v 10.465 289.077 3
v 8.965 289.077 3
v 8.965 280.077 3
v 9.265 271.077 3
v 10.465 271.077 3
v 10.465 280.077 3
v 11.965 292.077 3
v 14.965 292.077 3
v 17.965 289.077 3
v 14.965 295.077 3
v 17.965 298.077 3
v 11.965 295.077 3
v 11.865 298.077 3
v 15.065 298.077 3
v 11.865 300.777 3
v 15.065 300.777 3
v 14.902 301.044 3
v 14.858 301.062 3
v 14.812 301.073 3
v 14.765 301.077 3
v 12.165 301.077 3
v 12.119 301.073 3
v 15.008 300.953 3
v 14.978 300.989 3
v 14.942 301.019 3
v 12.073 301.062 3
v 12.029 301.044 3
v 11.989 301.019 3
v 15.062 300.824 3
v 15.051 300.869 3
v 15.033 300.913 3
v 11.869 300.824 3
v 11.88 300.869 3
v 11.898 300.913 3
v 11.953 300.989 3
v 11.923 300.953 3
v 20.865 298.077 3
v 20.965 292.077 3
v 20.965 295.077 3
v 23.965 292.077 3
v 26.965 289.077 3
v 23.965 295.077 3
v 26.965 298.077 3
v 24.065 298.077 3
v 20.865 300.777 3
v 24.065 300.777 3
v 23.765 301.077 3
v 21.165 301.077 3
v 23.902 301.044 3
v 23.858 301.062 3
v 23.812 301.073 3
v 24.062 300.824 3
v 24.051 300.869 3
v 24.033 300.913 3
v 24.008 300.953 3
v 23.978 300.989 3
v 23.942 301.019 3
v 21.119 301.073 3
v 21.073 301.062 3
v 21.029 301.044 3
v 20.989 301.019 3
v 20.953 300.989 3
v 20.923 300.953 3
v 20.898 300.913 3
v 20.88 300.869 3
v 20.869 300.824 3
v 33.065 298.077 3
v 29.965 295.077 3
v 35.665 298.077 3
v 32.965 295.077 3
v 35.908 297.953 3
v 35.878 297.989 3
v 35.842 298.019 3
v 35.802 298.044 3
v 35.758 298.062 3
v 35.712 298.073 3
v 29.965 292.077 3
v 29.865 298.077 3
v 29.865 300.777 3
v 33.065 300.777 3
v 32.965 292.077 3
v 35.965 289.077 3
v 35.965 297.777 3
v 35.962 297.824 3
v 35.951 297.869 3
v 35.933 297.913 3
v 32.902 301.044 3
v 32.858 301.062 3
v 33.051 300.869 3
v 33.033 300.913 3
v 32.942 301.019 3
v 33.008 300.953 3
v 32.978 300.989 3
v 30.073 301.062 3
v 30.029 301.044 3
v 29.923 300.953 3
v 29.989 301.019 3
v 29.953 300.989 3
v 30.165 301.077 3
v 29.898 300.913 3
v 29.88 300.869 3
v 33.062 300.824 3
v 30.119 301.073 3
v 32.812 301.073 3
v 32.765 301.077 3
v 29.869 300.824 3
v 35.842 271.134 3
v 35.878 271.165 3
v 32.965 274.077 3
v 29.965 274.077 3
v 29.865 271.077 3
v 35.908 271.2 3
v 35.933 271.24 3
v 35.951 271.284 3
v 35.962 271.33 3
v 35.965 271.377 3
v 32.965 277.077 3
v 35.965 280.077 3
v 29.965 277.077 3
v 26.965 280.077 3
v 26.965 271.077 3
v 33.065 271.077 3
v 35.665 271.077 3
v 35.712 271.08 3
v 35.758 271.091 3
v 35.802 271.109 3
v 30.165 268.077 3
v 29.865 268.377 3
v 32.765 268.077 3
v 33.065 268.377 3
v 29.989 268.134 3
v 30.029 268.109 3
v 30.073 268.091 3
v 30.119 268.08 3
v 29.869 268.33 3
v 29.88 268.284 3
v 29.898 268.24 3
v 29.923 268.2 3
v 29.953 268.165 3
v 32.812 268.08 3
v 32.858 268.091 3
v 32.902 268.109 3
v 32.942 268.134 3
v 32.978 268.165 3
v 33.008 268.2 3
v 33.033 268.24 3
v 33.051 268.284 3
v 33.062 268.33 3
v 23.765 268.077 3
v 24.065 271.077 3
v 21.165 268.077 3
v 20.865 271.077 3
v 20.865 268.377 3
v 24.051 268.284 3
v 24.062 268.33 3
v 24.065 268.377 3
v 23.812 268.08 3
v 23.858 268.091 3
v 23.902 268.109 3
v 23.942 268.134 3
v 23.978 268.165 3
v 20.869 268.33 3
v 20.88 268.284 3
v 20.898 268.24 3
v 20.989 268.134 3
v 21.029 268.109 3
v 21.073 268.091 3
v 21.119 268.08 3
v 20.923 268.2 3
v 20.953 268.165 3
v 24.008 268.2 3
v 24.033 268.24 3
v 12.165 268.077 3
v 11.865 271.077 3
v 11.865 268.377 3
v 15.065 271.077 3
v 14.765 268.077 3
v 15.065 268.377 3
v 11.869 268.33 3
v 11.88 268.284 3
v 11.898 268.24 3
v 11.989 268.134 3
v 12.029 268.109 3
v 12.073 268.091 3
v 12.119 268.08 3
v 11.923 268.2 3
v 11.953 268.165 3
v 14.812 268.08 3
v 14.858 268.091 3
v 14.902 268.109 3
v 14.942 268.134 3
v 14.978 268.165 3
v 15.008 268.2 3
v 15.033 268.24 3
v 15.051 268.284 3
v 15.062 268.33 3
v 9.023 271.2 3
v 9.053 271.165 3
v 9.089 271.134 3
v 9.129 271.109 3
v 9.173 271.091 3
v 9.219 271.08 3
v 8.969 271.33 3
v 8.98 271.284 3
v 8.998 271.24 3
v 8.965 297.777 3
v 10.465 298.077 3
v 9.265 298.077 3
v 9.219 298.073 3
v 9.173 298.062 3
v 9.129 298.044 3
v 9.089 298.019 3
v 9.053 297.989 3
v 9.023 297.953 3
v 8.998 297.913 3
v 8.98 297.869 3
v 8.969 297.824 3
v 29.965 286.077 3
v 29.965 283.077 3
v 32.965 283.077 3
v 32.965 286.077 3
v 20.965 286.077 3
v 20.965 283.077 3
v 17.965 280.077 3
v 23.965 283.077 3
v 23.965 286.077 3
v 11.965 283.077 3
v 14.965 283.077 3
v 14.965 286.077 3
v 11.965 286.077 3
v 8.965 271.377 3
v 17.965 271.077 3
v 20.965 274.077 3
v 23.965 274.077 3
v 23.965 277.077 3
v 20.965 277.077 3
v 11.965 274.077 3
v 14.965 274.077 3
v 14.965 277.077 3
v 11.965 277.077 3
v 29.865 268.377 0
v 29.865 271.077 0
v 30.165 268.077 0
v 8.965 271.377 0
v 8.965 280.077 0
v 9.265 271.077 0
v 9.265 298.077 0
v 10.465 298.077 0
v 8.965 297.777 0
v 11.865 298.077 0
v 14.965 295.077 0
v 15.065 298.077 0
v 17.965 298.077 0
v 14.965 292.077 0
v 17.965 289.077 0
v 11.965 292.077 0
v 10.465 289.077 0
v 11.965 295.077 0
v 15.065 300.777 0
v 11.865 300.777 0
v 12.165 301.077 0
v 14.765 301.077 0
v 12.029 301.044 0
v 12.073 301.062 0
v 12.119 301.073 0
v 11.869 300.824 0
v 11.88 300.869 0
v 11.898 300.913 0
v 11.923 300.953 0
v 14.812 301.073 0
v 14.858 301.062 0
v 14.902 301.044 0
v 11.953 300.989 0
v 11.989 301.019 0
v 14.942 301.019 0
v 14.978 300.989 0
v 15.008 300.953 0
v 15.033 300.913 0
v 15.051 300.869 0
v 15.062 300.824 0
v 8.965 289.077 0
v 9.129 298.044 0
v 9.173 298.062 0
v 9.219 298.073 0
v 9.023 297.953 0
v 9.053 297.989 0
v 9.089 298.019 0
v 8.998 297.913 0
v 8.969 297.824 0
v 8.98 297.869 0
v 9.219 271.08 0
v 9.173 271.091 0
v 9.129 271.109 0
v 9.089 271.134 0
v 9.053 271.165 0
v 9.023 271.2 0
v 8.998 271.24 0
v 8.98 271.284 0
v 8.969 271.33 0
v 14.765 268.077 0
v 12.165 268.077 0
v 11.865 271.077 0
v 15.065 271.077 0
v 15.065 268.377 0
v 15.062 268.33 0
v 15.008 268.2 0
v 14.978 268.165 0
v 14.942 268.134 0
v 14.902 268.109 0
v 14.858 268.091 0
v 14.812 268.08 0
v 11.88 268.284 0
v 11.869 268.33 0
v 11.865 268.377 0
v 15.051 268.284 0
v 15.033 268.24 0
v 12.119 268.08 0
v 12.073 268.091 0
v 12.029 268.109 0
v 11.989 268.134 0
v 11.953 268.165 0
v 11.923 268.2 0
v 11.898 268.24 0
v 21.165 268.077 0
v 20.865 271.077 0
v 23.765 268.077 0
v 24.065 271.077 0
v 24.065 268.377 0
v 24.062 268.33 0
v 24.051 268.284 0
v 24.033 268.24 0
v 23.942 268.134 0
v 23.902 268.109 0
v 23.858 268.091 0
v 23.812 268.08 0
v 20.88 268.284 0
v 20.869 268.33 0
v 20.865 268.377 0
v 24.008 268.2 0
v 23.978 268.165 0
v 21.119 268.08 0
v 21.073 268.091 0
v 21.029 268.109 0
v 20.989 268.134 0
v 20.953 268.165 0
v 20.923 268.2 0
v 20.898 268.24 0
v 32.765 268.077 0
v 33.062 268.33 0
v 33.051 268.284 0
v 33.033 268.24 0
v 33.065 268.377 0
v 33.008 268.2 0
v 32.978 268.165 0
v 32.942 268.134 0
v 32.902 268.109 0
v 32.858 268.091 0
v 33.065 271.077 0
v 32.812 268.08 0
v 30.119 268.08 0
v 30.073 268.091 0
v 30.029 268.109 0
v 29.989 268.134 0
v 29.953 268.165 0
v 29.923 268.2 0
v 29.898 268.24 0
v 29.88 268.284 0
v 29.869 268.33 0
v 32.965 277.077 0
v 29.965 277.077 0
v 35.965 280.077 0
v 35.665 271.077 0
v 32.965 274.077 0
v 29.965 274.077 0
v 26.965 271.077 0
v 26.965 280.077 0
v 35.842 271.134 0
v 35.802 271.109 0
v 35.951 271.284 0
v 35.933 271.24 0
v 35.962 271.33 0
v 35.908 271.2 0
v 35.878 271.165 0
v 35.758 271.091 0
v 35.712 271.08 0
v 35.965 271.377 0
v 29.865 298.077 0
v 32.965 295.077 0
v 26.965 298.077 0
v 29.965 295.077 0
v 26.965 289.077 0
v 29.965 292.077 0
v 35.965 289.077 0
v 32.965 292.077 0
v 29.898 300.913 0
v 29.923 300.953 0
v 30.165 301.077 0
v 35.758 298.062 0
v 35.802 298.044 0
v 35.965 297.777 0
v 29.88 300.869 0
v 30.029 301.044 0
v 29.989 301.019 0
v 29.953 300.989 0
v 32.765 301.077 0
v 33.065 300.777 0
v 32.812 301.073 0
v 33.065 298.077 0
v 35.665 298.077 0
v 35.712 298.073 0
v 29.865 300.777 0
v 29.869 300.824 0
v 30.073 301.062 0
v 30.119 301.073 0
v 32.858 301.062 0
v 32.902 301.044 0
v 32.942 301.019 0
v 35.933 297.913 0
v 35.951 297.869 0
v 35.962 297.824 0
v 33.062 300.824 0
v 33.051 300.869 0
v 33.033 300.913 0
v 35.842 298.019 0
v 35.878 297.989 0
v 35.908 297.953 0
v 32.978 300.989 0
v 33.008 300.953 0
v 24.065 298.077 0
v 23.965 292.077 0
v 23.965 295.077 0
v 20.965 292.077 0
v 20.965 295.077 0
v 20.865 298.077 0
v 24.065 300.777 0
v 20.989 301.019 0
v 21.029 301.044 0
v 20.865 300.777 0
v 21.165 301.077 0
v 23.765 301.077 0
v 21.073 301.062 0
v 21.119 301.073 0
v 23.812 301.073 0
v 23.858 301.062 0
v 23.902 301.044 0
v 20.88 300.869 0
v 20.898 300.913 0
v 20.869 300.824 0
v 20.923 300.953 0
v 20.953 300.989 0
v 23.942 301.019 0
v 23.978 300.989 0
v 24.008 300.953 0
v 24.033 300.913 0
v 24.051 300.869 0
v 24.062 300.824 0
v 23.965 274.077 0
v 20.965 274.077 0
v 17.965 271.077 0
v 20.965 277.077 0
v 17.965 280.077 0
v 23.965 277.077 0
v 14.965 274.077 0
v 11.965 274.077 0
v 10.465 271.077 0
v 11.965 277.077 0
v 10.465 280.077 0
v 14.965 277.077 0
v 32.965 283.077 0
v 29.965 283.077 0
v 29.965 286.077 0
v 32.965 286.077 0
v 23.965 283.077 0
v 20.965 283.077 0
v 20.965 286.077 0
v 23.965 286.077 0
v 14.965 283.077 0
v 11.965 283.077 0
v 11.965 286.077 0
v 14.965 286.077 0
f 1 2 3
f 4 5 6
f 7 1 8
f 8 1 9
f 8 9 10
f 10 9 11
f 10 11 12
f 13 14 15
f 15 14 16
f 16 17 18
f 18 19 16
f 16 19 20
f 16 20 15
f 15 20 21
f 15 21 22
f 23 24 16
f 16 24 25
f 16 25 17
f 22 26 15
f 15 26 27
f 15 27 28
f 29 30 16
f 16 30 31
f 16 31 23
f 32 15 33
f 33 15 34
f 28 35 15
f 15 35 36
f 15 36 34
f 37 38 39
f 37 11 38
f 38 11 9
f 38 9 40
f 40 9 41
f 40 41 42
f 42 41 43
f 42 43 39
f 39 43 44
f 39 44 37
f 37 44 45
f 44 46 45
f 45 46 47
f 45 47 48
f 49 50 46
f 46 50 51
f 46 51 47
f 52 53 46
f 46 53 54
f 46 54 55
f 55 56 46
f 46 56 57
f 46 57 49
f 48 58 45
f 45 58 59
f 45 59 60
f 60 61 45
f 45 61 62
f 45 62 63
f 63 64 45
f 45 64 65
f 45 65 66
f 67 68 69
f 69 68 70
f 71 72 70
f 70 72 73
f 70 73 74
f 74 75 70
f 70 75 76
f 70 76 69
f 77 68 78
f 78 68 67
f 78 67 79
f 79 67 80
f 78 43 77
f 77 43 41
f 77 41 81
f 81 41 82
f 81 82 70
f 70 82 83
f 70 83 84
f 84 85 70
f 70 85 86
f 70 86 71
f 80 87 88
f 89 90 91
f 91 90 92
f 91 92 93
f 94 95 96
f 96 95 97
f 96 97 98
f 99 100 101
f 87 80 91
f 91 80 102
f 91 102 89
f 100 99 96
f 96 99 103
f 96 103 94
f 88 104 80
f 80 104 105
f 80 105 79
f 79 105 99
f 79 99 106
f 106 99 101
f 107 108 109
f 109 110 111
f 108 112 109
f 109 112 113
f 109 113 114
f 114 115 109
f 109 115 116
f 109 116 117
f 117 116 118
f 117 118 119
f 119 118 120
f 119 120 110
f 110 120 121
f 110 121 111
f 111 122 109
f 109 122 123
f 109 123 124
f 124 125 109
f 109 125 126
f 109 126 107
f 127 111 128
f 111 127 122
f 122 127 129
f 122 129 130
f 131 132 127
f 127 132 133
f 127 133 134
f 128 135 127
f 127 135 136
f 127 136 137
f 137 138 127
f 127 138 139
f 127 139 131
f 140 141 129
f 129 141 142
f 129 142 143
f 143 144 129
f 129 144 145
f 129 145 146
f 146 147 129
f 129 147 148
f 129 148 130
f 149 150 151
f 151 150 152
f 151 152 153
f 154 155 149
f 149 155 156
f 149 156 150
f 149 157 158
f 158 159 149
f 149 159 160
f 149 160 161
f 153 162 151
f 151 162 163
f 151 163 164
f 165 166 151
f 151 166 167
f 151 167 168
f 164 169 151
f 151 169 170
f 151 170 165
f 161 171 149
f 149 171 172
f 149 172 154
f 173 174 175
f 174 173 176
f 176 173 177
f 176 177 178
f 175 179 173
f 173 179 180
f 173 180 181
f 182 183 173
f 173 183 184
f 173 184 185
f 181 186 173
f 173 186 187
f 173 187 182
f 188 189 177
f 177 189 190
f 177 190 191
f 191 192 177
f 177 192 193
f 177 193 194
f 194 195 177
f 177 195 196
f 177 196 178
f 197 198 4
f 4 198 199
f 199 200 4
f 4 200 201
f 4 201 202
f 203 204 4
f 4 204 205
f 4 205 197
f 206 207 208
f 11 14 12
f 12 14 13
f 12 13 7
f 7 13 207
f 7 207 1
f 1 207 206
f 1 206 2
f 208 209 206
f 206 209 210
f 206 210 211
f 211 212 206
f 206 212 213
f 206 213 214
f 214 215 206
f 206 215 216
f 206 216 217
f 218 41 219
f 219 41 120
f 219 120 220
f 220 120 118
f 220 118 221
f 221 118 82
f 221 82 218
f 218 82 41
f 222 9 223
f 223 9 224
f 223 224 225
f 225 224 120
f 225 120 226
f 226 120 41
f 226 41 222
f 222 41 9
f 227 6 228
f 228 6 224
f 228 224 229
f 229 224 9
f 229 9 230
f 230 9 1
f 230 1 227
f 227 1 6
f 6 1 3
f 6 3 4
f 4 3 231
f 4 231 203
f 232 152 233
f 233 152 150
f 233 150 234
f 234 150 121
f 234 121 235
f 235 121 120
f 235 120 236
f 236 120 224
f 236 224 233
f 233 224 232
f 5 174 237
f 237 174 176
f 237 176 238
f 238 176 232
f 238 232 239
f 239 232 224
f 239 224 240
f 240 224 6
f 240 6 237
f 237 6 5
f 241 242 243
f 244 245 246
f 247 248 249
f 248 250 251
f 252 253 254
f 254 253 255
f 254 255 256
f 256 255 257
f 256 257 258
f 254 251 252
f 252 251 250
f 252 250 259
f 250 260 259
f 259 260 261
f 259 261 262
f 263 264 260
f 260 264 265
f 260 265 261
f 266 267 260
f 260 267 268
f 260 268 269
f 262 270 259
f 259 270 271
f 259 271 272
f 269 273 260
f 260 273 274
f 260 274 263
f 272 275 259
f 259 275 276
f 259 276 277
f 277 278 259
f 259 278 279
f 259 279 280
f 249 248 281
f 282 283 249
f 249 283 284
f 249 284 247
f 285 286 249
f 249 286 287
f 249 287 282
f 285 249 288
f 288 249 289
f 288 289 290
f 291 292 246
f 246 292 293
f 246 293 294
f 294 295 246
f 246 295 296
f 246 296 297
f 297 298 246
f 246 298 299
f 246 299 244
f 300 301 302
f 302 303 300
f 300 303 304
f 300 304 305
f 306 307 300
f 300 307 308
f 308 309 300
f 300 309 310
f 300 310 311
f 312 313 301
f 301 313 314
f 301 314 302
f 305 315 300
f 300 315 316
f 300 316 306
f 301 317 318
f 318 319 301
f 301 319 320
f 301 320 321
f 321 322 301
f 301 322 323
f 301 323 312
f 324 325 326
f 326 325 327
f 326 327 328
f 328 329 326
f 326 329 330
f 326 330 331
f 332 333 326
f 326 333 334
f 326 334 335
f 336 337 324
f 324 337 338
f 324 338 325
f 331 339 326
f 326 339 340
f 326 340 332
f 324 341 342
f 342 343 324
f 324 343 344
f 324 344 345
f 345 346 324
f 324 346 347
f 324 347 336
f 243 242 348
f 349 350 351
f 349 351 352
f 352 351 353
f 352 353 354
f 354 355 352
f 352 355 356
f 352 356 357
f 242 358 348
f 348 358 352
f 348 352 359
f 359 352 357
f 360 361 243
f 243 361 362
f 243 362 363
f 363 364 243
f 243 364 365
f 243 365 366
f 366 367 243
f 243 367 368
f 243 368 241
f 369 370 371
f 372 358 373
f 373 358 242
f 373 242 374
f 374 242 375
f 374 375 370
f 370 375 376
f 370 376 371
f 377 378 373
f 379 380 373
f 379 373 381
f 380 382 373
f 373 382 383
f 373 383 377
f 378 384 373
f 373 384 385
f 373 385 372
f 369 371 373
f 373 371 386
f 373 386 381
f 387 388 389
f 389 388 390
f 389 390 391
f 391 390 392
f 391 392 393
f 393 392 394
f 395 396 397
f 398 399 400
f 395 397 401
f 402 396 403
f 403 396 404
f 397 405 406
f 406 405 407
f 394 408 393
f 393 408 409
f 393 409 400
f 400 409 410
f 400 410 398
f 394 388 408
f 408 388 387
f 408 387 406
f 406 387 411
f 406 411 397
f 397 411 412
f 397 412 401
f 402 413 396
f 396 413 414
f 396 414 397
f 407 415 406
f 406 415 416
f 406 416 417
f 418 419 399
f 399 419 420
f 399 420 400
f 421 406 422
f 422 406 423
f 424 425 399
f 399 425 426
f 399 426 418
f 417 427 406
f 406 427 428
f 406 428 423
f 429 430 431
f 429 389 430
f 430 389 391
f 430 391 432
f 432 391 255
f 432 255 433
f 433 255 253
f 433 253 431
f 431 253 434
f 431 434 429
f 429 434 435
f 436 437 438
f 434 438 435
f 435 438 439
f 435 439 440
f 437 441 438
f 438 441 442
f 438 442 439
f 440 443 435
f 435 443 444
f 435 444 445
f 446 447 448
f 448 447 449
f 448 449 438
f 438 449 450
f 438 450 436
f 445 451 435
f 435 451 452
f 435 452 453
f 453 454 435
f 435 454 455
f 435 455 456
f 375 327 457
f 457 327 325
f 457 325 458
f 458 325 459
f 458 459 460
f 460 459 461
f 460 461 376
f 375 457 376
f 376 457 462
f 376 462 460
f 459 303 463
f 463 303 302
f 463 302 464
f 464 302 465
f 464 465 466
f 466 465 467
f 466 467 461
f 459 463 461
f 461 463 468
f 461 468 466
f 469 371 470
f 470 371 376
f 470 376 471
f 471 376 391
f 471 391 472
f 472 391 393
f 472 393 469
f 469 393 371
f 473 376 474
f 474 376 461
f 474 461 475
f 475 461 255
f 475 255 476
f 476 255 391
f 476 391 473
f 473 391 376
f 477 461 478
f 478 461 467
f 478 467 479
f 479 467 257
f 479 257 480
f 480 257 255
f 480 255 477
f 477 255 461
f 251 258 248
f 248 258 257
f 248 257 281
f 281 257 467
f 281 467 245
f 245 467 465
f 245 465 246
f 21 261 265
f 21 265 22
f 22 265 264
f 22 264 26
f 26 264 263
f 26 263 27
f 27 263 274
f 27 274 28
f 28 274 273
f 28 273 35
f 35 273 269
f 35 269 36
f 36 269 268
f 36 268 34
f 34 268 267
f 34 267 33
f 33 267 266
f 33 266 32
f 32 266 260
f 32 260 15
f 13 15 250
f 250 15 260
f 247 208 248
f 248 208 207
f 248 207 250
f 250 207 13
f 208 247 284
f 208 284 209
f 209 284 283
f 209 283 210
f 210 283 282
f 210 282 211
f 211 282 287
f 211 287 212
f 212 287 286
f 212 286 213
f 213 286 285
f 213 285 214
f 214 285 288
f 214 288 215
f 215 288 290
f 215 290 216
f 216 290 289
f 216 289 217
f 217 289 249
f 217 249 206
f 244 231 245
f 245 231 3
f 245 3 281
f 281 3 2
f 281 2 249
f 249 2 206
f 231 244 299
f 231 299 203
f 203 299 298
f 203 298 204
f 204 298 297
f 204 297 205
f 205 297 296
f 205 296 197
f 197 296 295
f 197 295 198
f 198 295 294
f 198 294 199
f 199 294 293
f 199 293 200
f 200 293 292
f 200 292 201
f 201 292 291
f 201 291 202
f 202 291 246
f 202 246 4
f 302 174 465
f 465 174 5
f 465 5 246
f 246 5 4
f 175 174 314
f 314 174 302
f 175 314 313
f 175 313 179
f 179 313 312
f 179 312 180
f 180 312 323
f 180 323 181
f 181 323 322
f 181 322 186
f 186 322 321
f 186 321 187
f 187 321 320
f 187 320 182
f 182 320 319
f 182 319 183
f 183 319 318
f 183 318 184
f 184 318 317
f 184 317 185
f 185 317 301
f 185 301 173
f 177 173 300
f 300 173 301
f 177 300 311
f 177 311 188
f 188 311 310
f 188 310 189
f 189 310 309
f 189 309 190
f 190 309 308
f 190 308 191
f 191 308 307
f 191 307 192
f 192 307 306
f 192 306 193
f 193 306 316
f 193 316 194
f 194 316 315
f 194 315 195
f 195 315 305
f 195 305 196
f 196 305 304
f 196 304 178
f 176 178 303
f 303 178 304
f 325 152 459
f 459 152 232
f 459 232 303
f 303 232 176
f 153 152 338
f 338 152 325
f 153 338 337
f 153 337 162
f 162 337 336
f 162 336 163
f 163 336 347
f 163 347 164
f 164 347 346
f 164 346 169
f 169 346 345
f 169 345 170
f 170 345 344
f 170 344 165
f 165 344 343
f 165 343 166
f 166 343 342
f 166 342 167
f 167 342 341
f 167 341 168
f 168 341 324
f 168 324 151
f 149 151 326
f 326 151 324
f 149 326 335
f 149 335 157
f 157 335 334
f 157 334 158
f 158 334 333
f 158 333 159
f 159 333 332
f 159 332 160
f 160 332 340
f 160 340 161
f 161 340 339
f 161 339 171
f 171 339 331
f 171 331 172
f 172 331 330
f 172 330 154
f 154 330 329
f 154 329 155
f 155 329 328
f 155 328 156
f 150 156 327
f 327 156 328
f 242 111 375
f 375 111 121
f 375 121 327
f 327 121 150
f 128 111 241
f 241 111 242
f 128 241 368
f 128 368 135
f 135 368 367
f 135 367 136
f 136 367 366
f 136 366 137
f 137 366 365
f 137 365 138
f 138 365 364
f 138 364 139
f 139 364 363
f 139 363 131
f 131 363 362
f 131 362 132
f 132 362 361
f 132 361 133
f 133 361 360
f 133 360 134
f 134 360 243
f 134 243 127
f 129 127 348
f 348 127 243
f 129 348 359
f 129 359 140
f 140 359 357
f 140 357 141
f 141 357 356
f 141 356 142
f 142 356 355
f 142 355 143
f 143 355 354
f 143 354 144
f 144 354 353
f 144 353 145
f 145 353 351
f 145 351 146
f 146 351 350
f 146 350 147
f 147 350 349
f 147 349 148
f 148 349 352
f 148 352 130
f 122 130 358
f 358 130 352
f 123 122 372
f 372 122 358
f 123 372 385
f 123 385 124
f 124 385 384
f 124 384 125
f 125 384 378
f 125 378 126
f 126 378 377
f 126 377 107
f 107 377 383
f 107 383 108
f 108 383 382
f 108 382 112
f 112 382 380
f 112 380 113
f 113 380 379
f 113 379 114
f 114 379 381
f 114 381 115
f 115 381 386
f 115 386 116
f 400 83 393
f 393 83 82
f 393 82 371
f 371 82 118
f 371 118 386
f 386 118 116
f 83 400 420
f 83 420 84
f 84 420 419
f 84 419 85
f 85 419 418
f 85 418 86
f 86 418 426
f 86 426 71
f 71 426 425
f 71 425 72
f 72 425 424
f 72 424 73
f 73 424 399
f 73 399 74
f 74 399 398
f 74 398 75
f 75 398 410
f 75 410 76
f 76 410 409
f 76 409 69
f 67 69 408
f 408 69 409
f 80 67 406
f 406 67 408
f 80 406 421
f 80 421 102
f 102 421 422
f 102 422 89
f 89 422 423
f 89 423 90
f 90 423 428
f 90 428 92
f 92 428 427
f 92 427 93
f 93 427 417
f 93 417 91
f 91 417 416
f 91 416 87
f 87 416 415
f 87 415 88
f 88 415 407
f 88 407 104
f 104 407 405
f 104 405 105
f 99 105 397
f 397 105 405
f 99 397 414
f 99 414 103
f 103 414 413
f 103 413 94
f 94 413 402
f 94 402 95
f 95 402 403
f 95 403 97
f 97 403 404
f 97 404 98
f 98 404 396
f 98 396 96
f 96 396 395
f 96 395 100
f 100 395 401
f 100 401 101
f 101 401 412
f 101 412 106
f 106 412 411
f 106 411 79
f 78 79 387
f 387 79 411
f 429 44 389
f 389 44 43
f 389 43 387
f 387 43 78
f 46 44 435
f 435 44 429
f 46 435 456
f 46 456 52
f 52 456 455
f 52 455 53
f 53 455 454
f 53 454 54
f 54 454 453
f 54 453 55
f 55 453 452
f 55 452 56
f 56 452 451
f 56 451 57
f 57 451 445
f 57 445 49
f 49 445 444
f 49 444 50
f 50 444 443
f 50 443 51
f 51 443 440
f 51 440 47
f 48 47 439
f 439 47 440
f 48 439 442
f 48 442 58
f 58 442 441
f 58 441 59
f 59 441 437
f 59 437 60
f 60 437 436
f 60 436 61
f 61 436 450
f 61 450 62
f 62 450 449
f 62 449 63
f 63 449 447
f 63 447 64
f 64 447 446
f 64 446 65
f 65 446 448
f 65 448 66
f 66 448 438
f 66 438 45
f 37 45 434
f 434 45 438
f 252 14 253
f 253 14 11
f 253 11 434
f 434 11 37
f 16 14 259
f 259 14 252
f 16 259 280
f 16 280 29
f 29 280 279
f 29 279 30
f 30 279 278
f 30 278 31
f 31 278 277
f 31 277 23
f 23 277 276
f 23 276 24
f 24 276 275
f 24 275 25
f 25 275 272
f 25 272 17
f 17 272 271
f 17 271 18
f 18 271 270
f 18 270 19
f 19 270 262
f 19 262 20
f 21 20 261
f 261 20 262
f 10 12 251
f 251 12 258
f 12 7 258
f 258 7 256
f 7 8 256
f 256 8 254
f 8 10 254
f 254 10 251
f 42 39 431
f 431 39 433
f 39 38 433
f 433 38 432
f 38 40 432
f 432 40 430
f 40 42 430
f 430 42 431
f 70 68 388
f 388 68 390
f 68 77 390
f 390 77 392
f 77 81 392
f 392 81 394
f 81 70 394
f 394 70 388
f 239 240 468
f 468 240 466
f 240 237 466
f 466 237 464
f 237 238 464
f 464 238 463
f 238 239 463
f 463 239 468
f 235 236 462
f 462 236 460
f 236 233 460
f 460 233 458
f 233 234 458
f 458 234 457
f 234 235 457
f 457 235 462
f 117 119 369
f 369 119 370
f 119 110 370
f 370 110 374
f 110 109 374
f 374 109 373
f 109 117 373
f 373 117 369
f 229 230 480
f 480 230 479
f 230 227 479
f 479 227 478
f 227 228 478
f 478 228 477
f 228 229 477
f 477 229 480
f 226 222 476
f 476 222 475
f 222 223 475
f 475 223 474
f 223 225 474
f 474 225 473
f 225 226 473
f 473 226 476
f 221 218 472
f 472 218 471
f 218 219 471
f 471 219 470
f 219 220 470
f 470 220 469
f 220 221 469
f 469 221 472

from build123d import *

# Parameters (mm, degrees)
MODEL_W                 = 3
MODEL_H                 = 3
MODEL_W_2               = 3.000000001
SALIENTE_EXTRUIR1_DEPTH = 3


with BuildPart() as part:
    # Model → Saliente-Extruir1 (new body)
    with BuildSketch(Plane.XY):
        with BuildLine():
            Line((8.96548528, 297.776664772), (8.96548528, 271.376664772))
            ThreePointArc((8.96548528, 271.376664772), (9.053353246, 271.164532738), (9.265485281, 271.076664772))
            Line((9.265485281, 271.076664772), (11.86548528, 271.076664772))
            Line((11.86548528, 271.076664772), (11.86548528, 268.376664772))
            ThreePointArc((11.86548528, 268.376664772), (11.953353246, 268.164532738), (12.165485281, 268.076664772))
            Line((12.165485281, 268.076664772), (14.765485281, 268.076664772))
            ThreePointArc((14.765485281, 268.076664772), (14.977617315, 268.164532738), (15.065485281, 268.376664772))
            Line((15.065485281, 268.376664772), (15.065485281, 271.076664772))
            Line((15.065485281, 271.076664772), (20.86548528, 271.076664772))
            Line((20.86548528, 271.076664772), (20.86548528, 268.376664772))
            ThreePointArc((20.86548528, 268.376664772), (20.953353246, 268.164532738), (21.165485281, 268.076664772))
            Line((21.165485281, 268.076664772), (23.76548528, 268.076664772))
            ThreePointArc((23.76548528, 268.076664772), (23.977617315, 268.164532738), (24.06548528, 268.376664772))
            Line((24.06548528, 268.376664772), (24.06548528, 271.076664772))
            Line((24.06548528, 271.076664772), (29.86548528, 271.076664772))
            Line((29.86548528, 271.076664772), (29.86548528, 268.376664772))
            ThreePointArc((29.86548528, 268.376664772), (29.953353246, 268.164532738), (30.165485281, 268.076664772))
            Line((30.165485281, 268.076664772), (32.765485281, 268.076664772))
            ThreePointArc((32.765485281, 268.076664772), (32.977617315, 268.164532738), (33.06548528, 268.376664772))
            Line((33.06548528, 268.376664772), (33.06548528, 271.076664772))
            Line((33.06548528, 271.076664772), (35.66548528, 271.076664772))
            ThreePointArc((35.66548528, 271.076664772), (35.877617315, 271.164532738), (35.96548528, 271.376664772))
            Line((35.96548528, 271.376664772), (35.96548528, 297.776664772))
            ThreePointArc((35.96548528, 297.776664772), (35.877617315, 297.988796806), (35.66548528, 298.076664772))
            Line((35.66548528, 298.076664772), (33.06548528, 298.076664772))
            Line((33.06548528, 298.076664772), (33.06548528, 300.776664772))
            ThreePointArc((33.06548528, 300.776664772), (32.977617315, 300.988796806), (32.765485281, 301.076664772))
            Line((32.765485281, 301.076664772), (30.165485281, 301.076664772))
            ThreePointArc((30.165485281, 301.076664772), (29.953353246, 300.988796806), (29.86548528, 300.776664772))
            Line((29.86548528, 300.776664772), (29.86548528, 298.076664772))
            Line((29.86548528, 298.076664772), (24.06548528, 298.076664772))
            Line((24.06548528, 298.076664772), (24.06548528, 300.776664772))
            ThreePointArc((24.06548528, 300.776664772), (23.977617315, 300.988796806), (23.76548528, 301.076664772))
            Line((23.76548528, 301.076664772), (21.165485281, 301.076664772))
            ThreePointArc((21.165485281, 301.076664772), (20.953353246, 300.988796806), (20.86548528, 300.776664772))
            Line((20.86548528, 300.776664772), (20.86548528, 298.076664772))
            Line((20.86548528, 298.076664772), (15.065485281, 298.076664772))
            Line((15.065485281, 298.076664772), (15.065485281, 300.776664772))
            ThreePointArc((15.065485281, 300.776664772), (14.977617315, 300.988796806), (14.765485281, 301.076664772))
            Line((14.765485281, 301.076664772), (12.165485281, 301.076664772))
            ThreePointArc((12.165485281, 301.076664772), (11.953353246, 300.988796806), (11.86548528, 300.776664772))
            Line((11.86548528, 300.776664772), (11.86548528, 298.076664772))
            Line((11.86548528, 298.076664772), (9.265485281, 298.076664772))
            ThreePointArc((9.265485281, 298.076664772), (9.053353246, 297.988796806), (8.96548528, 297.776664772))
        make_face()
        with Locations((13.46548528, 293.576664772)):
            Rectangle(MODEL_W, MODEL_H, mode=Mode.SUBTRACT)
        with Locations((22.465485281, 293.576664772)):
            Rectangle(MODEL_W_2, MODEL_H, mode=Mode.SUBTRACT)
        with Locations((31.46548528, 293.576664772)):
            Rectangle(MODEL_W, MODEL_H, mode=Mode.SUBTRACT)
        with Locations((13.46548528, 275.576664772)):
            Rectangle(MODEL_W, MODEL_H, mode=Mode.SUBTRACT)
        with Locations((22.465485281, 275.576664772)):
            Rectangle(MODEL_W_2, MODEL_H, mode=Mode.SUBTRACT)
        with Locations((31.46548528, 275.576664772)):
            Rectangle(MODEL_W, MODEL_H, mode=Mode.SUBTRACT)
        with Locations((13.46548528, 284.576664772)):
            Rectangle(MODEL_W, MODEL_H, mode=Mode.SUBTRACT)
        with Locations((22.465485281, 284.576664772)):
            Rectangle(MODEL_W_2, MODEL_H, mode=Mode.SUBTRACT)
        with Locations((31.46548528, 284.576664772)):
            Rectangle(MODEL_W, MODEL_H, mode=Mode.SUBTRACT)
    extrude(amount=SALIENTE_EXTRUIR1_DEPTH)


solid = part.part
